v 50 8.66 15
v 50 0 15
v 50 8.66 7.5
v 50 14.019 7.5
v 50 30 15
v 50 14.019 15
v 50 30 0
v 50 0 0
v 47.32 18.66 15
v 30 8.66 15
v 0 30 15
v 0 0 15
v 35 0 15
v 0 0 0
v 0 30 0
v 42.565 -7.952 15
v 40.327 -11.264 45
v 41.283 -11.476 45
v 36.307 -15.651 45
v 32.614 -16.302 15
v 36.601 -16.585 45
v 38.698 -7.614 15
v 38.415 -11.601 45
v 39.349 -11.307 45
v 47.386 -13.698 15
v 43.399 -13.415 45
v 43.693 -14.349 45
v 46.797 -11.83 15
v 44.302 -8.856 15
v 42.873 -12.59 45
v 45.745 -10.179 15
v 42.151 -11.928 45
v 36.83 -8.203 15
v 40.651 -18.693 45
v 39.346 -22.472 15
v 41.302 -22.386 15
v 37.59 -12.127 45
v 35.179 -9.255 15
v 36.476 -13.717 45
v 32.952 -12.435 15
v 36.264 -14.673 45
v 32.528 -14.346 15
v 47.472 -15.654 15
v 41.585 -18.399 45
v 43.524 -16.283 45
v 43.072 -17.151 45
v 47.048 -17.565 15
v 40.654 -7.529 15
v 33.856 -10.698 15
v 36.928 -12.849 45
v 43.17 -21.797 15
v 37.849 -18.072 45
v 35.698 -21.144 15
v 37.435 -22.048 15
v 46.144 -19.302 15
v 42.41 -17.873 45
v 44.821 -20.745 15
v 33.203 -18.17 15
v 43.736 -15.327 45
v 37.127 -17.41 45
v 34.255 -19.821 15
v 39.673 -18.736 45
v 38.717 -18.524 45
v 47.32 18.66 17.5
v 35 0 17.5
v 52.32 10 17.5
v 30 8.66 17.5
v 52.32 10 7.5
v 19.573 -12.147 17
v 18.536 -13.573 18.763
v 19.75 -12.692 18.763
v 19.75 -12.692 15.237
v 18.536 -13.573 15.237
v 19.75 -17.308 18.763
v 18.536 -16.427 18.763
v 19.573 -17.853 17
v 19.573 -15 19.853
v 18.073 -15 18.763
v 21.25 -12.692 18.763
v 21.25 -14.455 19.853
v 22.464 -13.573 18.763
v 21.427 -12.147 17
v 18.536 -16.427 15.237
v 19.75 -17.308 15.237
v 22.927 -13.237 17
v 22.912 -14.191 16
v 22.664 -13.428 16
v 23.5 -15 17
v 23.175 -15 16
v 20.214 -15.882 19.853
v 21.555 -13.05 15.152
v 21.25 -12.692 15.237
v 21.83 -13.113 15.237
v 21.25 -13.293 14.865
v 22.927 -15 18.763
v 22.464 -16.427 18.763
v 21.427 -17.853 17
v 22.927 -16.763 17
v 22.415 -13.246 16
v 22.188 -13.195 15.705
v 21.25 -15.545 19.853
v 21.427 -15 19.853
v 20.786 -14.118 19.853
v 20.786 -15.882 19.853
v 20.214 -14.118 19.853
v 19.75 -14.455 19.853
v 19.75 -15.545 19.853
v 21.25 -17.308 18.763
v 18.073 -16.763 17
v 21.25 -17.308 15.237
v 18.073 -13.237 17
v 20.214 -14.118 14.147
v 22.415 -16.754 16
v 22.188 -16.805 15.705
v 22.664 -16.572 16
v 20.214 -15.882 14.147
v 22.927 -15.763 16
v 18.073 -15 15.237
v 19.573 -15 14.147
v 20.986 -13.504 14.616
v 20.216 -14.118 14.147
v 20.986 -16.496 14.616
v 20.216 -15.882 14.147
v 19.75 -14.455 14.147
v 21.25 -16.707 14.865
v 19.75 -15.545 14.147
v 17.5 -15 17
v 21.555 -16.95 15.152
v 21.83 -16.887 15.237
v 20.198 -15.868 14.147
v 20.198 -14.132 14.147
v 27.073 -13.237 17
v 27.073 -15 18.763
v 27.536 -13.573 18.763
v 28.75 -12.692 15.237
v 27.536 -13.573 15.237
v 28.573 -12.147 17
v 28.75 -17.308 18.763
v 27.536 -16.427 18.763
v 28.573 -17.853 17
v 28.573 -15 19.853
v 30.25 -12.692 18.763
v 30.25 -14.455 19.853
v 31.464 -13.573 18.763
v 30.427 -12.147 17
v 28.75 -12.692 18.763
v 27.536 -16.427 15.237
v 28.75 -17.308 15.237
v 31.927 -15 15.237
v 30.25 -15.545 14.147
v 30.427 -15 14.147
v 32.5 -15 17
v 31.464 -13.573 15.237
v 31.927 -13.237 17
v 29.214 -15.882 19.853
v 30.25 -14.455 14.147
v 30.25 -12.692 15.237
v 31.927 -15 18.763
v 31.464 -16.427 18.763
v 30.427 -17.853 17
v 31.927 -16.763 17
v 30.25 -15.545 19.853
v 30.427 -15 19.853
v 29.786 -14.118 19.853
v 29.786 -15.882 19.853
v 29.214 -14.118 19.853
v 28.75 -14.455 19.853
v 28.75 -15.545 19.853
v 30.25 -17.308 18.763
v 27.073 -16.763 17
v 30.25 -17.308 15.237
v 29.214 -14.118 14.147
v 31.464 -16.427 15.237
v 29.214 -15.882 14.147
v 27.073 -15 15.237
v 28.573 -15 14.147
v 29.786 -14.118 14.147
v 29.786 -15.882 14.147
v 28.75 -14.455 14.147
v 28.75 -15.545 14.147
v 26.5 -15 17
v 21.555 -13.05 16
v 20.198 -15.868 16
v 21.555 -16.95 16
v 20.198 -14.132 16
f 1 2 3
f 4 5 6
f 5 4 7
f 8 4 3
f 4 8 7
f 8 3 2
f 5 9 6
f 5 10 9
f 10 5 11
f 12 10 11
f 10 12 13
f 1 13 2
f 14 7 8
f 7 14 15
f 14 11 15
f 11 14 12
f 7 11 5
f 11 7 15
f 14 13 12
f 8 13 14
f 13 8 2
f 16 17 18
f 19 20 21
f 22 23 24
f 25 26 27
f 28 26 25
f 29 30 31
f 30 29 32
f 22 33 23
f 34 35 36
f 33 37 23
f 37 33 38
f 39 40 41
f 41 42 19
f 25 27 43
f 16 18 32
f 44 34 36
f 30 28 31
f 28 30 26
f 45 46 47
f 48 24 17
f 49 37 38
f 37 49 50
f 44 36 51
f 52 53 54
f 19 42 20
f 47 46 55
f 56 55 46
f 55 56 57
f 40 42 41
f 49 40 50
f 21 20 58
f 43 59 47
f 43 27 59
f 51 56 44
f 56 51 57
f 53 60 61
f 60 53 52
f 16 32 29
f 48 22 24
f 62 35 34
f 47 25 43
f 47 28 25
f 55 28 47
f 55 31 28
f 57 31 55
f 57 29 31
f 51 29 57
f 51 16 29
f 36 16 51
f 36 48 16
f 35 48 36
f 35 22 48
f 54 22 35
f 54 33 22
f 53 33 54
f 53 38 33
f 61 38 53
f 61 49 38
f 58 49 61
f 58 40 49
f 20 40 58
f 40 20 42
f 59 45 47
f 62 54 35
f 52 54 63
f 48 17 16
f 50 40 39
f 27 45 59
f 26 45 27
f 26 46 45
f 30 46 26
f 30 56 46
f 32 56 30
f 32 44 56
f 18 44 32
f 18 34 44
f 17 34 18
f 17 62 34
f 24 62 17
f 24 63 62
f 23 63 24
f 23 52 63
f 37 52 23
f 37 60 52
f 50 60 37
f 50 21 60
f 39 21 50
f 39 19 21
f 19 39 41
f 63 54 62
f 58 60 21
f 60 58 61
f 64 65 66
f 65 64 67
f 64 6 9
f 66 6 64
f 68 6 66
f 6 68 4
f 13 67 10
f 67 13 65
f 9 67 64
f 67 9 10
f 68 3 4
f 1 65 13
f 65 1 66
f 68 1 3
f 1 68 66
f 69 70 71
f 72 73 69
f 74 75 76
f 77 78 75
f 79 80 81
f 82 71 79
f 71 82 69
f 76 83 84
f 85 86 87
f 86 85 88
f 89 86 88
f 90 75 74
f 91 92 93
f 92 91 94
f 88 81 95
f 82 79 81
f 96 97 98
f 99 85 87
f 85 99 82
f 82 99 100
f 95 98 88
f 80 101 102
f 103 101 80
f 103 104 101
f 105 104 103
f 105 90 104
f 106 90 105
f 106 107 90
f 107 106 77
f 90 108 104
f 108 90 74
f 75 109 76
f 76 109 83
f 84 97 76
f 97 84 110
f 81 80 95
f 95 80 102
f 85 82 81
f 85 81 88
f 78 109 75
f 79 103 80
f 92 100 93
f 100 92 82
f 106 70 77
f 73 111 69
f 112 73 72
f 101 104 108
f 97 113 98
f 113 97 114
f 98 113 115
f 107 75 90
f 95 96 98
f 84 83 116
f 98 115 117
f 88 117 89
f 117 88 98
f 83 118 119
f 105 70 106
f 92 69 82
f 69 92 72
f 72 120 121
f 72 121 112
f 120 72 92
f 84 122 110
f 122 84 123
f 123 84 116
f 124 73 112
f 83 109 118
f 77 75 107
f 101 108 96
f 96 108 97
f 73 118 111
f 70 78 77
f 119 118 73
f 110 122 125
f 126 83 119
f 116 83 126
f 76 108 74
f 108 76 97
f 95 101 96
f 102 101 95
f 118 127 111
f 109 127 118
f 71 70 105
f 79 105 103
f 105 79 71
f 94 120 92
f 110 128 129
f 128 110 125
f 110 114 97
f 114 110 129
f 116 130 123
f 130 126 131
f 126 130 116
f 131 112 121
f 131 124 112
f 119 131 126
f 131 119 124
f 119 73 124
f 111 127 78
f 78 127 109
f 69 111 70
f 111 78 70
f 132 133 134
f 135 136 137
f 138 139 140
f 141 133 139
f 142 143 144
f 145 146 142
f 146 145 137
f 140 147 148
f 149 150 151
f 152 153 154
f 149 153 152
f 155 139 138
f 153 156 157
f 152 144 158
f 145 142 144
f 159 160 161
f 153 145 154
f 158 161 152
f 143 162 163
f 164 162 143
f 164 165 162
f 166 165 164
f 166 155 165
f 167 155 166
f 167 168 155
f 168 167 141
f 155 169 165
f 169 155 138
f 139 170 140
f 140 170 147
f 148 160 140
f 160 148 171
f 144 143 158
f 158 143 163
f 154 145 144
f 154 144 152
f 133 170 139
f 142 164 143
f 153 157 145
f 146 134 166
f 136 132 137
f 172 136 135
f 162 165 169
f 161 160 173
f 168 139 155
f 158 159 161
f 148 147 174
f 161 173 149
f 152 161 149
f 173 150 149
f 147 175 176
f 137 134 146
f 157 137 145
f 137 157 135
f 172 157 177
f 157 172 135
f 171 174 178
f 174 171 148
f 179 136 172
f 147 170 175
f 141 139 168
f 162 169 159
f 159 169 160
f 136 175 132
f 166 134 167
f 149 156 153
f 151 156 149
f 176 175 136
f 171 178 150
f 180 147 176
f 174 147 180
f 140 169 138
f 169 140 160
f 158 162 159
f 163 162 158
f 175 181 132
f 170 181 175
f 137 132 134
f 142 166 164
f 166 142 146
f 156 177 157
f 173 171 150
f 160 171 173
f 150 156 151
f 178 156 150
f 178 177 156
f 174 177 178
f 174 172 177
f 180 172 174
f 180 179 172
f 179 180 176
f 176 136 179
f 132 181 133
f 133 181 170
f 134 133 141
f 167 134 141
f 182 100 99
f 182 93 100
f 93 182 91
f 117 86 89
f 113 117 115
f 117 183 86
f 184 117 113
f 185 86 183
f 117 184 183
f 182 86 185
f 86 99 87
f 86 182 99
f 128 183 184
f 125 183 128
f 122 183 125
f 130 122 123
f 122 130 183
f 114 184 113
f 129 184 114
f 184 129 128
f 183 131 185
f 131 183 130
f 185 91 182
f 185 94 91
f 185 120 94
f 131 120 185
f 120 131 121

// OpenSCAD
// Fish Model in OpenSCAD

// Parameters
fish_length = 50;
fish_width = 30;
fish_height = 15;
fin_length = 20;
fin_height = 10;
eye_radius = 3;
mouth_radius = 2;

module fish() {
  difference() {
    union() {
      // Body
      translate([0, 0, 0])
      cube([fish_length, fish_width, fish_height]);

      // Tail
      translate([fish_length - 10, -fish_width/2, fish_height])
      rotate([0, 0, 10])
      cylinder(h=fish_width, r1=fish_width/4, r2=fish_width/8);

      //Fin
      translate([fish_length - 15, 0, fish_height/2])
      rotate([0, 0, 30])
      cube([fin_length, fin_height, fin_height]);

      // Eye
      translate([fish_length/2 - eye_radius * 1.5, -fish_width/2, fish_height + 2])
      sphere(eye_radius);
      translate([fish_length/2 + eye_radius * 1.5, -fish_width/2, fish_height + 2])
      sphere(eye_radius);
    }

    // Mouth
    translate([fish_length/2 - mouth_radius * 1.5, -fish_width/2, fish_height - 3])
    cylinder(h=mouth_radius * 2, r=mouth_radius);
  }
}

fish();
